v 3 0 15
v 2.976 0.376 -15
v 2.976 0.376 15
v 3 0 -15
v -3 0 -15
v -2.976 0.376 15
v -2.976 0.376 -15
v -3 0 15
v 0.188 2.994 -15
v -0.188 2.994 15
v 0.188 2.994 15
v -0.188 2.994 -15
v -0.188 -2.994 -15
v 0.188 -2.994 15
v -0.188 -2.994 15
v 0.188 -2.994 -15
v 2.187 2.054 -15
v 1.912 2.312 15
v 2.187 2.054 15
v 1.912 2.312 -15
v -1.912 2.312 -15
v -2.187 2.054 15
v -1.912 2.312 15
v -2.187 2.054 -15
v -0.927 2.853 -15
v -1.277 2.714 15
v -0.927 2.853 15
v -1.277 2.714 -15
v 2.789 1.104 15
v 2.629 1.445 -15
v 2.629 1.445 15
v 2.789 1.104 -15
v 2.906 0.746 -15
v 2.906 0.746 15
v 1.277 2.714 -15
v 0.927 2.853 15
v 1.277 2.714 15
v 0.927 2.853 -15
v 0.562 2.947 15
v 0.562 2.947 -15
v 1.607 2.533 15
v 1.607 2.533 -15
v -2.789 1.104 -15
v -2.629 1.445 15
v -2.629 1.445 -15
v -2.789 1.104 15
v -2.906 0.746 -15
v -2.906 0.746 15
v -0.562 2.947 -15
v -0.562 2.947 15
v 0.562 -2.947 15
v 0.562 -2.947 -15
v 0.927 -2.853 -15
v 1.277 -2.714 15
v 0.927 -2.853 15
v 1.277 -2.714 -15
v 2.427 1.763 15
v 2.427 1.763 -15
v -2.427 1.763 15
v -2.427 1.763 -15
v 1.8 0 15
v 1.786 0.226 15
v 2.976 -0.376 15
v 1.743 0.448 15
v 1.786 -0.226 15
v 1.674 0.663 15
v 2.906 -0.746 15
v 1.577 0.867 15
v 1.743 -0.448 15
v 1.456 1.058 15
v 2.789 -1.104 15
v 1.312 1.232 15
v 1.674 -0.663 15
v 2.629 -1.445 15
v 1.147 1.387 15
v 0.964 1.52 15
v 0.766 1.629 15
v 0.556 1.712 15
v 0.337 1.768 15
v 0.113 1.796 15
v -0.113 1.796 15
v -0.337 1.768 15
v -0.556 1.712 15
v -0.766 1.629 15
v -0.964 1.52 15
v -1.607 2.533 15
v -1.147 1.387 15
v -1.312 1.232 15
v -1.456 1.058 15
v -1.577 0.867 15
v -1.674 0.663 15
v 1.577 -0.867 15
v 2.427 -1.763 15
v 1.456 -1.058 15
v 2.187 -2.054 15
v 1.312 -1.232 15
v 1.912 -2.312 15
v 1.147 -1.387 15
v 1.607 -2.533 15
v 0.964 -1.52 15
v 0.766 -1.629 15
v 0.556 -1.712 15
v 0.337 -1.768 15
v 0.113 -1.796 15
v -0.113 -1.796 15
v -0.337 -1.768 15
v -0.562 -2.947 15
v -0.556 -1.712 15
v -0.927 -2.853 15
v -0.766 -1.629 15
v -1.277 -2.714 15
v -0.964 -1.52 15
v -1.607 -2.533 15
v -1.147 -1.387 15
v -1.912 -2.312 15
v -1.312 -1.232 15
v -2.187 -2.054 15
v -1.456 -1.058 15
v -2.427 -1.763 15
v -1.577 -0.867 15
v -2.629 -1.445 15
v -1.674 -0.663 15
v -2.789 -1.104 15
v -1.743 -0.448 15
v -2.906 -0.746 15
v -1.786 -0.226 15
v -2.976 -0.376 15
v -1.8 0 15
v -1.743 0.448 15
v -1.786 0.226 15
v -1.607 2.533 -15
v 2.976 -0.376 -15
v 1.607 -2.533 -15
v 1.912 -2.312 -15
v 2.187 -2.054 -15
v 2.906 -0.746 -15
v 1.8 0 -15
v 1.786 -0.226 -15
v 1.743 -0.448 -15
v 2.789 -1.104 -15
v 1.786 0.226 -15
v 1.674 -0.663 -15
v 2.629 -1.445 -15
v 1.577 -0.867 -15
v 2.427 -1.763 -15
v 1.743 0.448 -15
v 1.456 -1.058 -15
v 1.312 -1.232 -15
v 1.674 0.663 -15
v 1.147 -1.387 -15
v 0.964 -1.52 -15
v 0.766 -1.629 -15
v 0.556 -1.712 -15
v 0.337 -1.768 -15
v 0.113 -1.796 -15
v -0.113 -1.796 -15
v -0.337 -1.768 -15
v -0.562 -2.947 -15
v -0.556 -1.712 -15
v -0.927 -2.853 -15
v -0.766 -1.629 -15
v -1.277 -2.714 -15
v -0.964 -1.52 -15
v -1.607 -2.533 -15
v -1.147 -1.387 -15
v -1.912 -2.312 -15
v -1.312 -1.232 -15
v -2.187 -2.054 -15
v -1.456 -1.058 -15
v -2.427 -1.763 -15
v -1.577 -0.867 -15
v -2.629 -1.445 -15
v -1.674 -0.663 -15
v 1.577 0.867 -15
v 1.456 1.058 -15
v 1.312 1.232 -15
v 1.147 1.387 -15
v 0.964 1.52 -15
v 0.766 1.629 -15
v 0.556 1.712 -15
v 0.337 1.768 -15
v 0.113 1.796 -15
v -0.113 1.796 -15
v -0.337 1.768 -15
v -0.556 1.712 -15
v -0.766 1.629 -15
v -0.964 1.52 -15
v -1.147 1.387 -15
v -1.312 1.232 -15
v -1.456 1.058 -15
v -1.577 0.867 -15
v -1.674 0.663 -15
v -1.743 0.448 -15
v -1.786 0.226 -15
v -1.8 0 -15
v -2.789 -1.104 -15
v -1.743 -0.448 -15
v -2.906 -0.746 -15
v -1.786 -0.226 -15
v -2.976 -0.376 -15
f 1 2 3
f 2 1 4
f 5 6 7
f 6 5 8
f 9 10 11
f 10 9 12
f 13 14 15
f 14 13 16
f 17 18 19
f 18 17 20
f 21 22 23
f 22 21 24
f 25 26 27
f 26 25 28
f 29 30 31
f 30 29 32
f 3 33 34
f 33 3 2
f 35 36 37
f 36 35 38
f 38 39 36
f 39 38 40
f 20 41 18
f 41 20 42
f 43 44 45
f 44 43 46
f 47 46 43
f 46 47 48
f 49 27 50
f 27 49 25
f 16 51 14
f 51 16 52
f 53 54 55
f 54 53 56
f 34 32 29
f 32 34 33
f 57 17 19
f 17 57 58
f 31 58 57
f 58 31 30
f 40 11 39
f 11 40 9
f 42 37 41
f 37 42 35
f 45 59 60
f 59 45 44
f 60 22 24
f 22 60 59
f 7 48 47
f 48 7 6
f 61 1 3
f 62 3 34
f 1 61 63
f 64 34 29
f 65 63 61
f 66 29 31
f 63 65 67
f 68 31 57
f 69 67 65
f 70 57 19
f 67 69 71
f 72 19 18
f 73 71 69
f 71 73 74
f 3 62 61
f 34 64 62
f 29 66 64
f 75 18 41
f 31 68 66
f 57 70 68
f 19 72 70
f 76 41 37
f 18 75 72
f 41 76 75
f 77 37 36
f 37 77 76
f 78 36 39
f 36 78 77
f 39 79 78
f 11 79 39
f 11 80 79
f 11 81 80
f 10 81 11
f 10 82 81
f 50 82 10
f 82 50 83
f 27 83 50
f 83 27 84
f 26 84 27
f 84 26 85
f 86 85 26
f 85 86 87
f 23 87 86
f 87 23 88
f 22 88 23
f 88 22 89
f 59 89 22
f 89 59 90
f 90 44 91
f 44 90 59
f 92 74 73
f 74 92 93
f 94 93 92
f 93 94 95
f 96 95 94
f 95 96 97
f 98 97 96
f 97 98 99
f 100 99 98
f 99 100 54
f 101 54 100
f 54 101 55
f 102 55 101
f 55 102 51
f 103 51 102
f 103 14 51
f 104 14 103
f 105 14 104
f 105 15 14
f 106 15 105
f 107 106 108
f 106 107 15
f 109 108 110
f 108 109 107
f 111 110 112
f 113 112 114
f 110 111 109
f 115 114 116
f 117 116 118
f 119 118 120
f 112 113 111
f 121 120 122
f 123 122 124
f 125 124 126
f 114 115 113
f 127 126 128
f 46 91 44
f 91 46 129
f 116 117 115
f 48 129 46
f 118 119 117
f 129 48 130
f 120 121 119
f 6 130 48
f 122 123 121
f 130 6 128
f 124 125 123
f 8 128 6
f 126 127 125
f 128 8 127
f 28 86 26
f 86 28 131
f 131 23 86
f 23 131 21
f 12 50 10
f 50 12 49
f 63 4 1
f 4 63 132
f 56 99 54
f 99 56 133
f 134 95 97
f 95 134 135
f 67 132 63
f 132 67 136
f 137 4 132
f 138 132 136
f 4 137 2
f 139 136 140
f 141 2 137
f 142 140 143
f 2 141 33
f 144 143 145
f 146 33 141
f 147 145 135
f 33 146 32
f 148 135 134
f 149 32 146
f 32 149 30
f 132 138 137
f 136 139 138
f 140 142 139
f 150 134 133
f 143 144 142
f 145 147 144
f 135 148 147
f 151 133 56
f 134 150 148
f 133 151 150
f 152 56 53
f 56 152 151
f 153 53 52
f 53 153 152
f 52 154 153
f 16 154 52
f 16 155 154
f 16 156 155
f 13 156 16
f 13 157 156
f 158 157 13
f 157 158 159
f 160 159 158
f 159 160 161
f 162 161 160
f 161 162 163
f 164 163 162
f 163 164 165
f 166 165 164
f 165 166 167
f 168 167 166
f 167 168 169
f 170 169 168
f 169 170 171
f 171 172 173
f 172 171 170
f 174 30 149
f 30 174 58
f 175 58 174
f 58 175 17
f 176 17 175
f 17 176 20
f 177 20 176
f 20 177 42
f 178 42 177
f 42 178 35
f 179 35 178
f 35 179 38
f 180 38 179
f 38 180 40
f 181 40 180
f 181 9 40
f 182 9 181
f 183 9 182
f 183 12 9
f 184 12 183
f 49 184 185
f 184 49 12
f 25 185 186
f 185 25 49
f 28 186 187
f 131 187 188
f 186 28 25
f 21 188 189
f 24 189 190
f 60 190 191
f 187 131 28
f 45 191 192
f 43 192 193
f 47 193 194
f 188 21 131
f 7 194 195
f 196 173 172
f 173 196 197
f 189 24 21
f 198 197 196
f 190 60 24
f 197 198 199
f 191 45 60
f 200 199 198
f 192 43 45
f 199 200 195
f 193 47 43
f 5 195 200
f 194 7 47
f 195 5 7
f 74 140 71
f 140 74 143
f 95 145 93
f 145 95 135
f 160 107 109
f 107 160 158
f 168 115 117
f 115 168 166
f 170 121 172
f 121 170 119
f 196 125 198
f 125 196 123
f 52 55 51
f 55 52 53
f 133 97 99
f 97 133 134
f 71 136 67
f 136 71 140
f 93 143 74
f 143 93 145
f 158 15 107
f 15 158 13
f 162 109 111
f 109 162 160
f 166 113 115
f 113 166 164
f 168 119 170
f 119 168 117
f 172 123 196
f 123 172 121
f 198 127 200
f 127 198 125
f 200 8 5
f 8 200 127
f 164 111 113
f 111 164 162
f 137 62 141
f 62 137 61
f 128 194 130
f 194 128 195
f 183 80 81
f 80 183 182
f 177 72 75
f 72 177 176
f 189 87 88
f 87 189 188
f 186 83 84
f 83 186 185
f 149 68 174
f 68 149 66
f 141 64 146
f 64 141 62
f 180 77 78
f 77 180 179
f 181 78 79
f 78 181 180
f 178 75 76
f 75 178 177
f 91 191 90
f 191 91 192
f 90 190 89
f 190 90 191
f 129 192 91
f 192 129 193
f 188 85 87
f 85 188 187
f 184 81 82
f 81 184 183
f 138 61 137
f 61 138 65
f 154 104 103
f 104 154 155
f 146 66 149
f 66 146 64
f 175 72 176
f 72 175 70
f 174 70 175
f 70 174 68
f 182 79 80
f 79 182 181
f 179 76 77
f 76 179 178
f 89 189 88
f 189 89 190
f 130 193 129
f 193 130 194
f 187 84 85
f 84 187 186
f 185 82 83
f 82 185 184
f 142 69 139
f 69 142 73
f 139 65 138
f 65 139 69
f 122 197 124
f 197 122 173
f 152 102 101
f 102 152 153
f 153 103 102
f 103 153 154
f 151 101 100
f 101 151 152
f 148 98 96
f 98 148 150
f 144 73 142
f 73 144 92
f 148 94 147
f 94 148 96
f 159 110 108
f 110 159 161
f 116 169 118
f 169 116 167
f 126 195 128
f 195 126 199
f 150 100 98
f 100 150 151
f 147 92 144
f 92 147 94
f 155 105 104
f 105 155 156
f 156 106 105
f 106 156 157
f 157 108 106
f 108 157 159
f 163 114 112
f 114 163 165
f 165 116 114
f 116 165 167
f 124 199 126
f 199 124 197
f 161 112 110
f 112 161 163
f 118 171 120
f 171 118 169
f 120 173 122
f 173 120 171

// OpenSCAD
$fn = 50;


difference() {
	union() {
		translate(v = [0, 0, -15.0000000000]) {
			cylinder(h = 30, r = 3.0000000000);
		}
	}
	union() {
		translate(v = [0, 0, -100.0000000000]) {
			cylinder(h = 200, r = 1.8000000000);
		}
	}
}
